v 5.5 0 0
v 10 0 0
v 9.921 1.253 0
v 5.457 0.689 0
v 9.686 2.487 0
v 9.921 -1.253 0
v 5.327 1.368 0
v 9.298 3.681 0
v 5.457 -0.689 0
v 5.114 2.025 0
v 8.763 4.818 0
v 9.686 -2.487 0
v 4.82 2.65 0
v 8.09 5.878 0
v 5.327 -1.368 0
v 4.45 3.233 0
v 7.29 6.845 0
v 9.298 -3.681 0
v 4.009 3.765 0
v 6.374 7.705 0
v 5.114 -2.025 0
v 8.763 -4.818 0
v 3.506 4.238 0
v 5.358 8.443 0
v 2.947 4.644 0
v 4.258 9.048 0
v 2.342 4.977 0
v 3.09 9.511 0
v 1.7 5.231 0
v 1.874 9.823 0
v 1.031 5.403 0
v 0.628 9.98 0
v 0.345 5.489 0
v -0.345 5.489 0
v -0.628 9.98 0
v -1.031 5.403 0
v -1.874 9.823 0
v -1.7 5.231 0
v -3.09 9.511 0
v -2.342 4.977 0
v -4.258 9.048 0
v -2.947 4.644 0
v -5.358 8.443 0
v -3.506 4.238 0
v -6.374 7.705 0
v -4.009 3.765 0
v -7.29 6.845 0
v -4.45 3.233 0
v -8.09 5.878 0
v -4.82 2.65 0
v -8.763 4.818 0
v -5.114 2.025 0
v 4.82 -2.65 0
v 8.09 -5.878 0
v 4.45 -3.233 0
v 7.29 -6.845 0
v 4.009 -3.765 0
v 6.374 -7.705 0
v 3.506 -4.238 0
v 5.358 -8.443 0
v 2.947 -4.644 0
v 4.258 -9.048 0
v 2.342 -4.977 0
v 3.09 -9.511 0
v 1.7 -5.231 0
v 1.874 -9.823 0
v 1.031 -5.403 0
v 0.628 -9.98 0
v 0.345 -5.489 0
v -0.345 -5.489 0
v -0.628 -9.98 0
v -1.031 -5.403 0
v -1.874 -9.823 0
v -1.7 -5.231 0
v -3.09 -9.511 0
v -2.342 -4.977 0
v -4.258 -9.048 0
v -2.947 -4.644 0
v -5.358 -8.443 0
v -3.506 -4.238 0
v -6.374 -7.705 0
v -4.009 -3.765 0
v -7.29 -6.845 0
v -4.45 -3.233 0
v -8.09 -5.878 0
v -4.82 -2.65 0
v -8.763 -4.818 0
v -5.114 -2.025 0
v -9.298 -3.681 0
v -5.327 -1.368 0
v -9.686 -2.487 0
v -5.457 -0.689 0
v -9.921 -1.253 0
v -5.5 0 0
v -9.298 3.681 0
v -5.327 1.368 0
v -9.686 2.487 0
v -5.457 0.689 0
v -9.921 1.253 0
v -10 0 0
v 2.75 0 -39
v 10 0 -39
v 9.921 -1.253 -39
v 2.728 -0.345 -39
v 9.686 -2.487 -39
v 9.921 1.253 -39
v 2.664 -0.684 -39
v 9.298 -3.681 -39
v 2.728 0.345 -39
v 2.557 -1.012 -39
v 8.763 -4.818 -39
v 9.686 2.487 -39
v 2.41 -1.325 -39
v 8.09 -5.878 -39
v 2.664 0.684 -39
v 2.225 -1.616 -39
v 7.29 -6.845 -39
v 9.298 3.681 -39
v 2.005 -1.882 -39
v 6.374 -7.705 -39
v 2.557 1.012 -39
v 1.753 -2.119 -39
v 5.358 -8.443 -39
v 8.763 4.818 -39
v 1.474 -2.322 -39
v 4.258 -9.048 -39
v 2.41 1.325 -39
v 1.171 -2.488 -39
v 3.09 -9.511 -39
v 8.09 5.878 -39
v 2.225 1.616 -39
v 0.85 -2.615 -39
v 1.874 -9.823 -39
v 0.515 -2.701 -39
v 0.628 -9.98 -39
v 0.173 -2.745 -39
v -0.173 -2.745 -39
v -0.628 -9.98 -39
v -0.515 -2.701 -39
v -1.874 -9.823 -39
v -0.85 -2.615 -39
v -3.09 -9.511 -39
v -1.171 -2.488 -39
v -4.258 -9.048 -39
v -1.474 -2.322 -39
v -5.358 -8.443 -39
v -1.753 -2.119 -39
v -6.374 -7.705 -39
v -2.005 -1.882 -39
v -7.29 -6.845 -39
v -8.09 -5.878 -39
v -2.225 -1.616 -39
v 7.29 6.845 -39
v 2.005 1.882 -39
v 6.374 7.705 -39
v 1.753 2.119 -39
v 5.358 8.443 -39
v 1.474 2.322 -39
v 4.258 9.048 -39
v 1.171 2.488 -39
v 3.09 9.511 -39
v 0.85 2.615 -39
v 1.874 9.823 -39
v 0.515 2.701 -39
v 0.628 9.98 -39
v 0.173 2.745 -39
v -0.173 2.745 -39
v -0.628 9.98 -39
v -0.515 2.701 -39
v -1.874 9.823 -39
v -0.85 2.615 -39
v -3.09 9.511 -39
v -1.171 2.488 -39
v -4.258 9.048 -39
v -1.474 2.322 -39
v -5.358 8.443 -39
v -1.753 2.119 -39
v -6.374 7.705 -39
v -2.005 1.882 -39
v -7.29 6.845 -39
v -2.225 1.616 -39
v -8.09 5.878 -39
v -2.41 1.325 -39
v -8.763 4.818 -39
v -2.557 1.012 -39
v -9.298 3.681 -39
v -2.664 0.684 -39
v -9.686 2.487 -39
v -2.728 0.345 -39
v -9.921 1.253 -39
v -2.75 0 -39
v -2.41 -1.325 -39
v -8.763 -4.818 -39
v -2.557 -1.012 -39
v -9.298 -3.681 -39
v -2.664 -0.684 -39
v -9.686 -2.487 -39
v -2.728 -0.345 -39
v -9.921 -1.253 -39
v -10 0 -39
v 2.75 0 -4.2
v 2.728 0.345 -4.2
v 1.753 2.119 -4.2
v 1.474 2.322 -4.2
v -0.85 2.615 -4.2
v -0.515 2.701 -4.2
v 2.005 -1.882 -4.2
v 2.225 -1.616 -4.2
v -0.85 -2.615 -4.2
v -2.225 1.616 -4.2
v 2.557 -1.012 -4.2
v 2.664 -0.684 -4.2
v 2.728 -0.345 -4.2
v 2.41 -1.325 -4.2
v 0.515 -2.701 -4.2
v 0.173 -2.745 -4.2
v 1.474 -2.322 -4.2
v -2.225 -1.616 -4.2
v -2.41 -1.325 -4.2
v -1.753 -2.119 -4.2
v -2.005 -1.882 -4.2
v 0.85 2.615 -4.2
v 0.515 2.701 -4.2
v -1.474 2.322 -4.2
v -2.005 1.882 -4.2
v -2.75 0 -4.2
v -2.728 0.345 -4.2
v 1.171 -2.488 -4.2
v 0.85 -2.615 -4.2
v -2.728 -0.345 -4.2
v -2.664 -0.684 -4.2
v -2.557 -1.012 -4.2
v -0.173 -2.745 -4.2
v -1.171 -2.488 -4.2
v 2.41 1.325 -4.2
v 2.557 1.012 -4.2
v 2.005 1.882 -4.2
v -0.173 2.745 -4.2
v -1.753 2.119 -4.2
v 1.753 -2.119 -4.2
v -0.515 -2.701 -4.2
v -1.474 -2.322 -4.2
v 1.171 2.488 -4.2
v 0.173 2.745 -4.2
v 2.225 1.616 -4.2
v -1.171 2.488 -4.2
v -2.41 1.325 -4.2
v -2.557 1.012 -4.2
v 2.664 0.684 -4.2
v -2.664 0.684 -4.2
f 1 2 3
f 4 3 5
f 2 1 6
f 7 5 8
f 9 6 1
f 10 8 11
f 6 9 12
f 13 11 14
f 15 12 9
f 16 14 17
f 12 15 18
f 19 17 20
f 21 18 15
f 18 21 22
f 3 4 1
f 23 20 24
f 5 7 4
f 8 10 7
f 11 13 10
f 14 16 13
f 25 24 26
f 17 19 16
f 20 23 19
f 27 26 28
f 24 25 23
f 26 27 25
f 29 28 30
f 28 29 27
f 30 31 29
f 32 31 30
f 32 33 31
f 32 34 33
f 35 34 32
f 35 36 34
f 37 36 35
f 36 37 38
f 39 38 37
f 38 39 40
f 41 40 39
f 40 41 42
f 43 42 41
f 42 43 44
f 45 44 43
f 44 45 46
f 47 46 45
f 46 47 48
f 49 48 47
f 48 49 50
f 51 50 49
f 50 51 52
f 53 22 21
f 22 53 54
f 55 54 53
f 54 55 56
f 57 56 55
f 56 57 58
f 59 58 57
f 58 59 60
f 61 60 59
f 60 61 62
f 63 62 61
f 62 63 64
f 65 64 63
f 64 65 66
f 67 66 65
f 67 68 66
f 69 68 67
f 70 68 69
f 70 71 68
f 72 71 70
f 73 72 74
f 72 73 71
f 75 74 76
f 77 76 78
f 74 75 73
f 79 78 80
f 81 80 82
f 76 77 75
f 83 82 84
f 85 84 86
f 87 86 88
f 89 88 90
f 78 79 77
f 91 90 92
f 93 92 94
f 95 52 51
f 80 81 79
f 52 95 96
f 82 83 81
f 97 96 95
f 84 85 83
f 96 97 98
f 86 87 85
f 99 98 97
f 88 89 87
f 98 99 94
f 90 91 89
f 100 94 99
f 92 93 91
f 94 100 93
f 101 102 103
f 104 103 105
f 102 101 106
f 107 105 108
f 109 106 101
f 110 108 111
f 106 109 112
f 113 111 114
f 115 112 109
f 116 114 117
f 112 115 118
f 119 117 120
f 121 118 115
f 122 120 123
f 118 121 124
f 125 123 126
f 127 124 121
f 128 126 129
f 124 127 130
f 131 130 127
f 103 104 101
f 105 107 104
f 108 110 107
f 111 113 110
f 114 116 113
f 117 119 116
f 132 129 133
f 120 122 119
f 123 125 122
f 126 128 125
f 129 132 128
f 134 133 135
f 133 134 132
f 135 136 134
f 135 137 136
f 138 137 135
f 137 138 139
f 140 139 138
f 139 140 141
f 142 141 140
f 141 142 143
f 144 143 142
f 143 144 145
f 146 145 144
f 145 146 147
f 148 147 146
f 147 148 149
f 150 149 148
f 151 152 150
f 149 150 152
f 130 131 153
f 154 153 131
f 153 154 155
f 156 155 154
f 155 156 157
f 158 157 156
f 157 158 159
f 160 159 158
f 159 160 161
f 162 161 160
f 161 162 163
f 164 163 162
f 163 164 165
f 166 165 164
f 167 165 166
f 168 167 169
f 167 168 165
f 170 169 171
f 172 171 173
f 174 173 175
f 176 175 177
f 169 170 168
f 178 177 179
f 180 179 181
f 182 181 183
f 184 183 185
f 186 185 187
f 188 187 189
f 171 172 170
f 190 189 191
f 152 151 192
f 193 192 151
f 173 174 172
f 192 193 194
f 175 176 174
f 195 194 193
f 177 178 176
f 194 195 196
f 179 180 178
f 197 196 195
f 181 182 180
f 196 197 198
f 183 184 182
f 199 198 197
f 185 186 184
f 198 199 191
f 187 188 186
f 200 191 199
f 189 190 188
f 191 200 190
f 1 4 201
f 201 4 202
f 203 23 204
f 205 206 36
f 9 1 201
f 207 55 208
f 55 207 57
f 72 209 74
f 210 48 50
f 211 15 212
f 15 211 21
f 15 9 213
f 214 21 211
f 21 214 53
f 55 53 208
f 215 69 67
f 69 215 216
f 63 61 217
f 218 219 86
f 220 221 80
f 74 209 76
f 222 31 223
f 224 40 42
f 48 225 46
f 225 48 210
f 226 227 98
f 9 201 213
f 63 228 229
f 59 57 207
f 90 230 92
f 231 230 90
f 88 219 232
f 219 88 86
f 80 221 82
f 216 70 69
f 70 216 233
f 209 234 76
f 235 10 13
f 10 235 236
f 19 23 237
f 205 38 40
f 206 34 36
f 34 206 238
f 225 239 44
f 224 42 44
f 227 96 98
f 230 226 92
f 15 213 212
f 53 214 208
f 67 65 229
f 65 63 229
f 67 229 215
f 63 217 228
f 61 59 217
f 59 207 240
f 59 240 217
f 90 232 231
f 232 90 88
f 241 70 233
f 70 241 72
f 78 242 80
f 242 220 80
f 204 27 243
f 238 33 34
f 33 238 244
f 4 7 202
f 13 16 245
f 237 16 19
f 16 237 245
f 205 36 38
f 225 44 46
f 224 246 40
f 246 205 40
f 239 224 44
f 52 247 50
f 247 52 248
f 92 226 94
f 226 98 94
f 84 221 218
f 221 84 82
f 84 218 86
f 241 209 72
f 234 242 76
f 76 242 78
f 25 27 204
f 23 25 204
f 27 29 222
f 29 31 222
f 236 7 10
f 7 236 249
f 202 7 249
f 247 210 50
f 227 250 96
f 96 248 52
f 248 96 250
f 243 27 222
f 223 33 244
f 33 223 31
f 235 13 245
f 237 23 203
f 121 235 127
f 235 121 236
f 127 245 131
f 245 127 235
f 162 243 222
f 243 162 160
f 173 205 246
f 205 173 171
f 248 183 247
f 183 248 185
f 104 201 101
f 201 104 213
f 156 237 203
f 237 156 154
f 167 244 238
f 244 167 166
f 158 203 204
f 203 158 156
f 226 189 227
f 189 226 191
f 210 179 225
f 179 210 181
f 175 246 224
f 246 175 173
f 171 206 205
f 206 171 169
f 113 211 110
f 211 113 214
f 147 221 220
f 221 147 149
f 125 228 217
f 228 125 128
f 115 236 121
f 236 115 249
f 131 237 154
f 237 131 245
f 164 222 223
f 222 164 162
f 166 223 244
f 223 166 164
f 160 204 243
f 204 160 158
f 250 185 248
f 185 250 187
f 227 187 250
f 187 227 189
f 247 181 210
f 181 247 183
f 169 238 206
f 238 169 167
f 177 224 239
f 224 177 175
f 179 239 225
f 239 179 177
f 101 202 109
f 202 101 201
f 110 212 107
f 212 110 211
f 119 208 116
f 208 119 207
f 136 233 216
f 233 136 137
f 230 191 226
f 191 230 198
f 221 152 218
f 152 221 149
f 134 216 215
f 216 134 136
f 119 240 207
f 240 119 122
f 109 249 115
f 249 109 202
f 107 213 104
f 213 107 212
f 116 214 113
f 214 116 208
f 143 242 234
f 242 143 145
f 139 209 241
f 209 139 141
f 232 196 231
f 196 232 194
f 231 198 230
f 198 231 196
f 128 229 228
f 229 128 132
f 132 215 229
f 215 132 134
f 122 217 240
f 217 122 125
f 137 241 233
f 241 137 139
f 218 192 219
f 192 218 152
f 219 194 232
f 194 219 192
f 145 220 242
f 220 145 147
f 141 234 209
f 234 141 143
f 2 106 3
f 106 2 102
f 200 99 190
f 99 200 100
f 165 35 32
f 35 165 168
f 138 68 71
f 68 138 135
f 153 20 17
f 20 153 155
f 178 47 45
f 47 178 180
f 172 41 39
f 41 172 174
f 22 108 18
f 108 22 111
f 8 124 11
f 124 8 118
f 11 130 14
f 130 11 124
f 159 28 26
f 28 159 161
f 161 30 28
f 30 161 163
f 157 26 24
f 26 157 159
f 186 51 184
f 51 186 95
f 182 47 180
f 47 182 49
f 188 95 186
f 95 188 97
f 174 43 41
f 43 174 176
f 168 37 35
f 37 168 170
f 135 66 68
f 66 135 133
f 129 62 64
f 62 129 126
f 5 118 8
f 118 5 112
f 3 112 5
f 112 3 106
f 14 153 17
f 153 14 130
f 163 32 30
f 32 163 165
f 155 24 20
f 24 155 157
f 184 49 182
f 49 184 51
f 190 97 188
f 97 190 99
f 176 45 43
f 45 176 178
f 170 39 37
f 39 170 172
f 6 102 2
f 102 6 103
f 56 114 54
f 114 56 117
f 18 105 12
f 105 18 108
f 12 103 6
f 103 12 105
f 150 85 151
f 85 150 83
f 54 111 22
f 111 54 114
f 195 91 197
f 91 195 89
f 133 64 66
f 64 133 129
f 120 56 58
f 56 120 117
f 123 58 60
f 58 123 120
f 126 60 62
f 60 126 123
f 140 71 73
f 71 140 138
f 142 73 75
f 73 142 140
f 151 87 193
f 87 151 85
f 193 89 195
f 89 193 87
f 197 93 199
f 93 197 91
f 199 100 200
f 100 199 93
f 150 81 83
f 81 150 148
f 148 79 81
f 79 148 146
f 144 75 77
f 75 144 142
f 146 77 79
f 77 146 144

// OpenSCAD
$fn = 50;


difference() {
	union() {
		translate(v = [0, 0, -39.0000000000]) {
			cylinder(h = 39, r = 10.0000000000);
		}
		cylinder(h = 0, r = 16.0000000000);
	}
	union() {
		translate(v = [0, 0, 0]) {
			rotate(a = [0, 0, 0]) {
				difference() {
					union() {
						#translate(v = [0, 0, -39.0000000000]) {
							cylinder(h = 39, r = 2.2500000000);
						}
						#translate(v = [0, 0, -4.2000000000]) {
							cylinder(h = 4.2000000000, r = 10.0000000000, r1 = 2.7500000000, r2 = 5.5000000000);
						}
						#translate(v = [0, 0, -39.0000000000]) {
							cylinder(h = 39, r = 2.7500000000);
						}
						#translate(v = [0, 0, -39.0000000000]) {
							cylinder(h = 39, r = 2.2500000000);
						}
					}
					union();
				}
			}
		}
	}
}
